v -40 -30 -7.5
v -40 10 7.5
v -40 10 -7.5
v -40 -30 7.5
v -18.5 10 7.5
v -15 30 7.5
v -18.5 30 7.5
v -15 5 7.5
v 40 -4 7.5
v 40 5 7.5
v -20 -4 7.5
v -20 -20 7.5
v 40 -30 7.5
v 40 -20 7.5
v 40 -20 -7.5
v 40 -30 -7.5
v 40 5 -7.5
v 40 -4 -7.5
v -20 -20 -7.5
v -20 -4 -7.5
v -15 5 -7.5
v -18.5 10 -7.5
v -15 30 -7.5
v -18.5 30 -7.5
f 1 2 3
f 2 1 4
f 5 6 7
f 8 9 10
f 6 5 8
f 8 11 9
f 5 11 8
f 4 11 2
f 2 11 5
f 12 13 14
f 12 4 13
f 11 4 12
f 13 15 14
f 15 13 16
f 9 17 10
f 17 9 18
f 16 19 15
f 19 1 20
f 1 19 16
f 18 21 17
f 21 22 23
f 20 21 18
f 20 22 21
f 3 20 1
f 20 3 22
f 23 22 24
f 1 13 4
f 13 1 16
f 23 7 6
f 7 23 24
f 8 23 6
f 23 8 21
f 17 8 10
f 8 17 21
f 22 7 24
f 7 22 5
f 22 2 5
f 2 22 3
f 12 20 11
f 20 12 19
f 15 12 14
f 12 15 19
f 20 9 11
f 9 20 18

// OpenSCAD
x = 80;
y = 60;
z = 15;

difference(){
    cube([x, y, z], center = true);
    mainCut();
    frameCut();
    tableCut();
}

module mainCut()
{
    translate([25, 35, 0]){
        cube([x, y, 0.1+ z], center = true);
    }
}

module frameCut()
{
    translate([-(0.5 * x) - 18.5, 40, 0]){
        cube([x, y, 0.1+ z], center = true);
    }
}

module tableCut()
{
    translate([20, 18 - (0.5 * y), 0]){
        cube([x, 16, 0.1+ z], center = true);
    }
}
